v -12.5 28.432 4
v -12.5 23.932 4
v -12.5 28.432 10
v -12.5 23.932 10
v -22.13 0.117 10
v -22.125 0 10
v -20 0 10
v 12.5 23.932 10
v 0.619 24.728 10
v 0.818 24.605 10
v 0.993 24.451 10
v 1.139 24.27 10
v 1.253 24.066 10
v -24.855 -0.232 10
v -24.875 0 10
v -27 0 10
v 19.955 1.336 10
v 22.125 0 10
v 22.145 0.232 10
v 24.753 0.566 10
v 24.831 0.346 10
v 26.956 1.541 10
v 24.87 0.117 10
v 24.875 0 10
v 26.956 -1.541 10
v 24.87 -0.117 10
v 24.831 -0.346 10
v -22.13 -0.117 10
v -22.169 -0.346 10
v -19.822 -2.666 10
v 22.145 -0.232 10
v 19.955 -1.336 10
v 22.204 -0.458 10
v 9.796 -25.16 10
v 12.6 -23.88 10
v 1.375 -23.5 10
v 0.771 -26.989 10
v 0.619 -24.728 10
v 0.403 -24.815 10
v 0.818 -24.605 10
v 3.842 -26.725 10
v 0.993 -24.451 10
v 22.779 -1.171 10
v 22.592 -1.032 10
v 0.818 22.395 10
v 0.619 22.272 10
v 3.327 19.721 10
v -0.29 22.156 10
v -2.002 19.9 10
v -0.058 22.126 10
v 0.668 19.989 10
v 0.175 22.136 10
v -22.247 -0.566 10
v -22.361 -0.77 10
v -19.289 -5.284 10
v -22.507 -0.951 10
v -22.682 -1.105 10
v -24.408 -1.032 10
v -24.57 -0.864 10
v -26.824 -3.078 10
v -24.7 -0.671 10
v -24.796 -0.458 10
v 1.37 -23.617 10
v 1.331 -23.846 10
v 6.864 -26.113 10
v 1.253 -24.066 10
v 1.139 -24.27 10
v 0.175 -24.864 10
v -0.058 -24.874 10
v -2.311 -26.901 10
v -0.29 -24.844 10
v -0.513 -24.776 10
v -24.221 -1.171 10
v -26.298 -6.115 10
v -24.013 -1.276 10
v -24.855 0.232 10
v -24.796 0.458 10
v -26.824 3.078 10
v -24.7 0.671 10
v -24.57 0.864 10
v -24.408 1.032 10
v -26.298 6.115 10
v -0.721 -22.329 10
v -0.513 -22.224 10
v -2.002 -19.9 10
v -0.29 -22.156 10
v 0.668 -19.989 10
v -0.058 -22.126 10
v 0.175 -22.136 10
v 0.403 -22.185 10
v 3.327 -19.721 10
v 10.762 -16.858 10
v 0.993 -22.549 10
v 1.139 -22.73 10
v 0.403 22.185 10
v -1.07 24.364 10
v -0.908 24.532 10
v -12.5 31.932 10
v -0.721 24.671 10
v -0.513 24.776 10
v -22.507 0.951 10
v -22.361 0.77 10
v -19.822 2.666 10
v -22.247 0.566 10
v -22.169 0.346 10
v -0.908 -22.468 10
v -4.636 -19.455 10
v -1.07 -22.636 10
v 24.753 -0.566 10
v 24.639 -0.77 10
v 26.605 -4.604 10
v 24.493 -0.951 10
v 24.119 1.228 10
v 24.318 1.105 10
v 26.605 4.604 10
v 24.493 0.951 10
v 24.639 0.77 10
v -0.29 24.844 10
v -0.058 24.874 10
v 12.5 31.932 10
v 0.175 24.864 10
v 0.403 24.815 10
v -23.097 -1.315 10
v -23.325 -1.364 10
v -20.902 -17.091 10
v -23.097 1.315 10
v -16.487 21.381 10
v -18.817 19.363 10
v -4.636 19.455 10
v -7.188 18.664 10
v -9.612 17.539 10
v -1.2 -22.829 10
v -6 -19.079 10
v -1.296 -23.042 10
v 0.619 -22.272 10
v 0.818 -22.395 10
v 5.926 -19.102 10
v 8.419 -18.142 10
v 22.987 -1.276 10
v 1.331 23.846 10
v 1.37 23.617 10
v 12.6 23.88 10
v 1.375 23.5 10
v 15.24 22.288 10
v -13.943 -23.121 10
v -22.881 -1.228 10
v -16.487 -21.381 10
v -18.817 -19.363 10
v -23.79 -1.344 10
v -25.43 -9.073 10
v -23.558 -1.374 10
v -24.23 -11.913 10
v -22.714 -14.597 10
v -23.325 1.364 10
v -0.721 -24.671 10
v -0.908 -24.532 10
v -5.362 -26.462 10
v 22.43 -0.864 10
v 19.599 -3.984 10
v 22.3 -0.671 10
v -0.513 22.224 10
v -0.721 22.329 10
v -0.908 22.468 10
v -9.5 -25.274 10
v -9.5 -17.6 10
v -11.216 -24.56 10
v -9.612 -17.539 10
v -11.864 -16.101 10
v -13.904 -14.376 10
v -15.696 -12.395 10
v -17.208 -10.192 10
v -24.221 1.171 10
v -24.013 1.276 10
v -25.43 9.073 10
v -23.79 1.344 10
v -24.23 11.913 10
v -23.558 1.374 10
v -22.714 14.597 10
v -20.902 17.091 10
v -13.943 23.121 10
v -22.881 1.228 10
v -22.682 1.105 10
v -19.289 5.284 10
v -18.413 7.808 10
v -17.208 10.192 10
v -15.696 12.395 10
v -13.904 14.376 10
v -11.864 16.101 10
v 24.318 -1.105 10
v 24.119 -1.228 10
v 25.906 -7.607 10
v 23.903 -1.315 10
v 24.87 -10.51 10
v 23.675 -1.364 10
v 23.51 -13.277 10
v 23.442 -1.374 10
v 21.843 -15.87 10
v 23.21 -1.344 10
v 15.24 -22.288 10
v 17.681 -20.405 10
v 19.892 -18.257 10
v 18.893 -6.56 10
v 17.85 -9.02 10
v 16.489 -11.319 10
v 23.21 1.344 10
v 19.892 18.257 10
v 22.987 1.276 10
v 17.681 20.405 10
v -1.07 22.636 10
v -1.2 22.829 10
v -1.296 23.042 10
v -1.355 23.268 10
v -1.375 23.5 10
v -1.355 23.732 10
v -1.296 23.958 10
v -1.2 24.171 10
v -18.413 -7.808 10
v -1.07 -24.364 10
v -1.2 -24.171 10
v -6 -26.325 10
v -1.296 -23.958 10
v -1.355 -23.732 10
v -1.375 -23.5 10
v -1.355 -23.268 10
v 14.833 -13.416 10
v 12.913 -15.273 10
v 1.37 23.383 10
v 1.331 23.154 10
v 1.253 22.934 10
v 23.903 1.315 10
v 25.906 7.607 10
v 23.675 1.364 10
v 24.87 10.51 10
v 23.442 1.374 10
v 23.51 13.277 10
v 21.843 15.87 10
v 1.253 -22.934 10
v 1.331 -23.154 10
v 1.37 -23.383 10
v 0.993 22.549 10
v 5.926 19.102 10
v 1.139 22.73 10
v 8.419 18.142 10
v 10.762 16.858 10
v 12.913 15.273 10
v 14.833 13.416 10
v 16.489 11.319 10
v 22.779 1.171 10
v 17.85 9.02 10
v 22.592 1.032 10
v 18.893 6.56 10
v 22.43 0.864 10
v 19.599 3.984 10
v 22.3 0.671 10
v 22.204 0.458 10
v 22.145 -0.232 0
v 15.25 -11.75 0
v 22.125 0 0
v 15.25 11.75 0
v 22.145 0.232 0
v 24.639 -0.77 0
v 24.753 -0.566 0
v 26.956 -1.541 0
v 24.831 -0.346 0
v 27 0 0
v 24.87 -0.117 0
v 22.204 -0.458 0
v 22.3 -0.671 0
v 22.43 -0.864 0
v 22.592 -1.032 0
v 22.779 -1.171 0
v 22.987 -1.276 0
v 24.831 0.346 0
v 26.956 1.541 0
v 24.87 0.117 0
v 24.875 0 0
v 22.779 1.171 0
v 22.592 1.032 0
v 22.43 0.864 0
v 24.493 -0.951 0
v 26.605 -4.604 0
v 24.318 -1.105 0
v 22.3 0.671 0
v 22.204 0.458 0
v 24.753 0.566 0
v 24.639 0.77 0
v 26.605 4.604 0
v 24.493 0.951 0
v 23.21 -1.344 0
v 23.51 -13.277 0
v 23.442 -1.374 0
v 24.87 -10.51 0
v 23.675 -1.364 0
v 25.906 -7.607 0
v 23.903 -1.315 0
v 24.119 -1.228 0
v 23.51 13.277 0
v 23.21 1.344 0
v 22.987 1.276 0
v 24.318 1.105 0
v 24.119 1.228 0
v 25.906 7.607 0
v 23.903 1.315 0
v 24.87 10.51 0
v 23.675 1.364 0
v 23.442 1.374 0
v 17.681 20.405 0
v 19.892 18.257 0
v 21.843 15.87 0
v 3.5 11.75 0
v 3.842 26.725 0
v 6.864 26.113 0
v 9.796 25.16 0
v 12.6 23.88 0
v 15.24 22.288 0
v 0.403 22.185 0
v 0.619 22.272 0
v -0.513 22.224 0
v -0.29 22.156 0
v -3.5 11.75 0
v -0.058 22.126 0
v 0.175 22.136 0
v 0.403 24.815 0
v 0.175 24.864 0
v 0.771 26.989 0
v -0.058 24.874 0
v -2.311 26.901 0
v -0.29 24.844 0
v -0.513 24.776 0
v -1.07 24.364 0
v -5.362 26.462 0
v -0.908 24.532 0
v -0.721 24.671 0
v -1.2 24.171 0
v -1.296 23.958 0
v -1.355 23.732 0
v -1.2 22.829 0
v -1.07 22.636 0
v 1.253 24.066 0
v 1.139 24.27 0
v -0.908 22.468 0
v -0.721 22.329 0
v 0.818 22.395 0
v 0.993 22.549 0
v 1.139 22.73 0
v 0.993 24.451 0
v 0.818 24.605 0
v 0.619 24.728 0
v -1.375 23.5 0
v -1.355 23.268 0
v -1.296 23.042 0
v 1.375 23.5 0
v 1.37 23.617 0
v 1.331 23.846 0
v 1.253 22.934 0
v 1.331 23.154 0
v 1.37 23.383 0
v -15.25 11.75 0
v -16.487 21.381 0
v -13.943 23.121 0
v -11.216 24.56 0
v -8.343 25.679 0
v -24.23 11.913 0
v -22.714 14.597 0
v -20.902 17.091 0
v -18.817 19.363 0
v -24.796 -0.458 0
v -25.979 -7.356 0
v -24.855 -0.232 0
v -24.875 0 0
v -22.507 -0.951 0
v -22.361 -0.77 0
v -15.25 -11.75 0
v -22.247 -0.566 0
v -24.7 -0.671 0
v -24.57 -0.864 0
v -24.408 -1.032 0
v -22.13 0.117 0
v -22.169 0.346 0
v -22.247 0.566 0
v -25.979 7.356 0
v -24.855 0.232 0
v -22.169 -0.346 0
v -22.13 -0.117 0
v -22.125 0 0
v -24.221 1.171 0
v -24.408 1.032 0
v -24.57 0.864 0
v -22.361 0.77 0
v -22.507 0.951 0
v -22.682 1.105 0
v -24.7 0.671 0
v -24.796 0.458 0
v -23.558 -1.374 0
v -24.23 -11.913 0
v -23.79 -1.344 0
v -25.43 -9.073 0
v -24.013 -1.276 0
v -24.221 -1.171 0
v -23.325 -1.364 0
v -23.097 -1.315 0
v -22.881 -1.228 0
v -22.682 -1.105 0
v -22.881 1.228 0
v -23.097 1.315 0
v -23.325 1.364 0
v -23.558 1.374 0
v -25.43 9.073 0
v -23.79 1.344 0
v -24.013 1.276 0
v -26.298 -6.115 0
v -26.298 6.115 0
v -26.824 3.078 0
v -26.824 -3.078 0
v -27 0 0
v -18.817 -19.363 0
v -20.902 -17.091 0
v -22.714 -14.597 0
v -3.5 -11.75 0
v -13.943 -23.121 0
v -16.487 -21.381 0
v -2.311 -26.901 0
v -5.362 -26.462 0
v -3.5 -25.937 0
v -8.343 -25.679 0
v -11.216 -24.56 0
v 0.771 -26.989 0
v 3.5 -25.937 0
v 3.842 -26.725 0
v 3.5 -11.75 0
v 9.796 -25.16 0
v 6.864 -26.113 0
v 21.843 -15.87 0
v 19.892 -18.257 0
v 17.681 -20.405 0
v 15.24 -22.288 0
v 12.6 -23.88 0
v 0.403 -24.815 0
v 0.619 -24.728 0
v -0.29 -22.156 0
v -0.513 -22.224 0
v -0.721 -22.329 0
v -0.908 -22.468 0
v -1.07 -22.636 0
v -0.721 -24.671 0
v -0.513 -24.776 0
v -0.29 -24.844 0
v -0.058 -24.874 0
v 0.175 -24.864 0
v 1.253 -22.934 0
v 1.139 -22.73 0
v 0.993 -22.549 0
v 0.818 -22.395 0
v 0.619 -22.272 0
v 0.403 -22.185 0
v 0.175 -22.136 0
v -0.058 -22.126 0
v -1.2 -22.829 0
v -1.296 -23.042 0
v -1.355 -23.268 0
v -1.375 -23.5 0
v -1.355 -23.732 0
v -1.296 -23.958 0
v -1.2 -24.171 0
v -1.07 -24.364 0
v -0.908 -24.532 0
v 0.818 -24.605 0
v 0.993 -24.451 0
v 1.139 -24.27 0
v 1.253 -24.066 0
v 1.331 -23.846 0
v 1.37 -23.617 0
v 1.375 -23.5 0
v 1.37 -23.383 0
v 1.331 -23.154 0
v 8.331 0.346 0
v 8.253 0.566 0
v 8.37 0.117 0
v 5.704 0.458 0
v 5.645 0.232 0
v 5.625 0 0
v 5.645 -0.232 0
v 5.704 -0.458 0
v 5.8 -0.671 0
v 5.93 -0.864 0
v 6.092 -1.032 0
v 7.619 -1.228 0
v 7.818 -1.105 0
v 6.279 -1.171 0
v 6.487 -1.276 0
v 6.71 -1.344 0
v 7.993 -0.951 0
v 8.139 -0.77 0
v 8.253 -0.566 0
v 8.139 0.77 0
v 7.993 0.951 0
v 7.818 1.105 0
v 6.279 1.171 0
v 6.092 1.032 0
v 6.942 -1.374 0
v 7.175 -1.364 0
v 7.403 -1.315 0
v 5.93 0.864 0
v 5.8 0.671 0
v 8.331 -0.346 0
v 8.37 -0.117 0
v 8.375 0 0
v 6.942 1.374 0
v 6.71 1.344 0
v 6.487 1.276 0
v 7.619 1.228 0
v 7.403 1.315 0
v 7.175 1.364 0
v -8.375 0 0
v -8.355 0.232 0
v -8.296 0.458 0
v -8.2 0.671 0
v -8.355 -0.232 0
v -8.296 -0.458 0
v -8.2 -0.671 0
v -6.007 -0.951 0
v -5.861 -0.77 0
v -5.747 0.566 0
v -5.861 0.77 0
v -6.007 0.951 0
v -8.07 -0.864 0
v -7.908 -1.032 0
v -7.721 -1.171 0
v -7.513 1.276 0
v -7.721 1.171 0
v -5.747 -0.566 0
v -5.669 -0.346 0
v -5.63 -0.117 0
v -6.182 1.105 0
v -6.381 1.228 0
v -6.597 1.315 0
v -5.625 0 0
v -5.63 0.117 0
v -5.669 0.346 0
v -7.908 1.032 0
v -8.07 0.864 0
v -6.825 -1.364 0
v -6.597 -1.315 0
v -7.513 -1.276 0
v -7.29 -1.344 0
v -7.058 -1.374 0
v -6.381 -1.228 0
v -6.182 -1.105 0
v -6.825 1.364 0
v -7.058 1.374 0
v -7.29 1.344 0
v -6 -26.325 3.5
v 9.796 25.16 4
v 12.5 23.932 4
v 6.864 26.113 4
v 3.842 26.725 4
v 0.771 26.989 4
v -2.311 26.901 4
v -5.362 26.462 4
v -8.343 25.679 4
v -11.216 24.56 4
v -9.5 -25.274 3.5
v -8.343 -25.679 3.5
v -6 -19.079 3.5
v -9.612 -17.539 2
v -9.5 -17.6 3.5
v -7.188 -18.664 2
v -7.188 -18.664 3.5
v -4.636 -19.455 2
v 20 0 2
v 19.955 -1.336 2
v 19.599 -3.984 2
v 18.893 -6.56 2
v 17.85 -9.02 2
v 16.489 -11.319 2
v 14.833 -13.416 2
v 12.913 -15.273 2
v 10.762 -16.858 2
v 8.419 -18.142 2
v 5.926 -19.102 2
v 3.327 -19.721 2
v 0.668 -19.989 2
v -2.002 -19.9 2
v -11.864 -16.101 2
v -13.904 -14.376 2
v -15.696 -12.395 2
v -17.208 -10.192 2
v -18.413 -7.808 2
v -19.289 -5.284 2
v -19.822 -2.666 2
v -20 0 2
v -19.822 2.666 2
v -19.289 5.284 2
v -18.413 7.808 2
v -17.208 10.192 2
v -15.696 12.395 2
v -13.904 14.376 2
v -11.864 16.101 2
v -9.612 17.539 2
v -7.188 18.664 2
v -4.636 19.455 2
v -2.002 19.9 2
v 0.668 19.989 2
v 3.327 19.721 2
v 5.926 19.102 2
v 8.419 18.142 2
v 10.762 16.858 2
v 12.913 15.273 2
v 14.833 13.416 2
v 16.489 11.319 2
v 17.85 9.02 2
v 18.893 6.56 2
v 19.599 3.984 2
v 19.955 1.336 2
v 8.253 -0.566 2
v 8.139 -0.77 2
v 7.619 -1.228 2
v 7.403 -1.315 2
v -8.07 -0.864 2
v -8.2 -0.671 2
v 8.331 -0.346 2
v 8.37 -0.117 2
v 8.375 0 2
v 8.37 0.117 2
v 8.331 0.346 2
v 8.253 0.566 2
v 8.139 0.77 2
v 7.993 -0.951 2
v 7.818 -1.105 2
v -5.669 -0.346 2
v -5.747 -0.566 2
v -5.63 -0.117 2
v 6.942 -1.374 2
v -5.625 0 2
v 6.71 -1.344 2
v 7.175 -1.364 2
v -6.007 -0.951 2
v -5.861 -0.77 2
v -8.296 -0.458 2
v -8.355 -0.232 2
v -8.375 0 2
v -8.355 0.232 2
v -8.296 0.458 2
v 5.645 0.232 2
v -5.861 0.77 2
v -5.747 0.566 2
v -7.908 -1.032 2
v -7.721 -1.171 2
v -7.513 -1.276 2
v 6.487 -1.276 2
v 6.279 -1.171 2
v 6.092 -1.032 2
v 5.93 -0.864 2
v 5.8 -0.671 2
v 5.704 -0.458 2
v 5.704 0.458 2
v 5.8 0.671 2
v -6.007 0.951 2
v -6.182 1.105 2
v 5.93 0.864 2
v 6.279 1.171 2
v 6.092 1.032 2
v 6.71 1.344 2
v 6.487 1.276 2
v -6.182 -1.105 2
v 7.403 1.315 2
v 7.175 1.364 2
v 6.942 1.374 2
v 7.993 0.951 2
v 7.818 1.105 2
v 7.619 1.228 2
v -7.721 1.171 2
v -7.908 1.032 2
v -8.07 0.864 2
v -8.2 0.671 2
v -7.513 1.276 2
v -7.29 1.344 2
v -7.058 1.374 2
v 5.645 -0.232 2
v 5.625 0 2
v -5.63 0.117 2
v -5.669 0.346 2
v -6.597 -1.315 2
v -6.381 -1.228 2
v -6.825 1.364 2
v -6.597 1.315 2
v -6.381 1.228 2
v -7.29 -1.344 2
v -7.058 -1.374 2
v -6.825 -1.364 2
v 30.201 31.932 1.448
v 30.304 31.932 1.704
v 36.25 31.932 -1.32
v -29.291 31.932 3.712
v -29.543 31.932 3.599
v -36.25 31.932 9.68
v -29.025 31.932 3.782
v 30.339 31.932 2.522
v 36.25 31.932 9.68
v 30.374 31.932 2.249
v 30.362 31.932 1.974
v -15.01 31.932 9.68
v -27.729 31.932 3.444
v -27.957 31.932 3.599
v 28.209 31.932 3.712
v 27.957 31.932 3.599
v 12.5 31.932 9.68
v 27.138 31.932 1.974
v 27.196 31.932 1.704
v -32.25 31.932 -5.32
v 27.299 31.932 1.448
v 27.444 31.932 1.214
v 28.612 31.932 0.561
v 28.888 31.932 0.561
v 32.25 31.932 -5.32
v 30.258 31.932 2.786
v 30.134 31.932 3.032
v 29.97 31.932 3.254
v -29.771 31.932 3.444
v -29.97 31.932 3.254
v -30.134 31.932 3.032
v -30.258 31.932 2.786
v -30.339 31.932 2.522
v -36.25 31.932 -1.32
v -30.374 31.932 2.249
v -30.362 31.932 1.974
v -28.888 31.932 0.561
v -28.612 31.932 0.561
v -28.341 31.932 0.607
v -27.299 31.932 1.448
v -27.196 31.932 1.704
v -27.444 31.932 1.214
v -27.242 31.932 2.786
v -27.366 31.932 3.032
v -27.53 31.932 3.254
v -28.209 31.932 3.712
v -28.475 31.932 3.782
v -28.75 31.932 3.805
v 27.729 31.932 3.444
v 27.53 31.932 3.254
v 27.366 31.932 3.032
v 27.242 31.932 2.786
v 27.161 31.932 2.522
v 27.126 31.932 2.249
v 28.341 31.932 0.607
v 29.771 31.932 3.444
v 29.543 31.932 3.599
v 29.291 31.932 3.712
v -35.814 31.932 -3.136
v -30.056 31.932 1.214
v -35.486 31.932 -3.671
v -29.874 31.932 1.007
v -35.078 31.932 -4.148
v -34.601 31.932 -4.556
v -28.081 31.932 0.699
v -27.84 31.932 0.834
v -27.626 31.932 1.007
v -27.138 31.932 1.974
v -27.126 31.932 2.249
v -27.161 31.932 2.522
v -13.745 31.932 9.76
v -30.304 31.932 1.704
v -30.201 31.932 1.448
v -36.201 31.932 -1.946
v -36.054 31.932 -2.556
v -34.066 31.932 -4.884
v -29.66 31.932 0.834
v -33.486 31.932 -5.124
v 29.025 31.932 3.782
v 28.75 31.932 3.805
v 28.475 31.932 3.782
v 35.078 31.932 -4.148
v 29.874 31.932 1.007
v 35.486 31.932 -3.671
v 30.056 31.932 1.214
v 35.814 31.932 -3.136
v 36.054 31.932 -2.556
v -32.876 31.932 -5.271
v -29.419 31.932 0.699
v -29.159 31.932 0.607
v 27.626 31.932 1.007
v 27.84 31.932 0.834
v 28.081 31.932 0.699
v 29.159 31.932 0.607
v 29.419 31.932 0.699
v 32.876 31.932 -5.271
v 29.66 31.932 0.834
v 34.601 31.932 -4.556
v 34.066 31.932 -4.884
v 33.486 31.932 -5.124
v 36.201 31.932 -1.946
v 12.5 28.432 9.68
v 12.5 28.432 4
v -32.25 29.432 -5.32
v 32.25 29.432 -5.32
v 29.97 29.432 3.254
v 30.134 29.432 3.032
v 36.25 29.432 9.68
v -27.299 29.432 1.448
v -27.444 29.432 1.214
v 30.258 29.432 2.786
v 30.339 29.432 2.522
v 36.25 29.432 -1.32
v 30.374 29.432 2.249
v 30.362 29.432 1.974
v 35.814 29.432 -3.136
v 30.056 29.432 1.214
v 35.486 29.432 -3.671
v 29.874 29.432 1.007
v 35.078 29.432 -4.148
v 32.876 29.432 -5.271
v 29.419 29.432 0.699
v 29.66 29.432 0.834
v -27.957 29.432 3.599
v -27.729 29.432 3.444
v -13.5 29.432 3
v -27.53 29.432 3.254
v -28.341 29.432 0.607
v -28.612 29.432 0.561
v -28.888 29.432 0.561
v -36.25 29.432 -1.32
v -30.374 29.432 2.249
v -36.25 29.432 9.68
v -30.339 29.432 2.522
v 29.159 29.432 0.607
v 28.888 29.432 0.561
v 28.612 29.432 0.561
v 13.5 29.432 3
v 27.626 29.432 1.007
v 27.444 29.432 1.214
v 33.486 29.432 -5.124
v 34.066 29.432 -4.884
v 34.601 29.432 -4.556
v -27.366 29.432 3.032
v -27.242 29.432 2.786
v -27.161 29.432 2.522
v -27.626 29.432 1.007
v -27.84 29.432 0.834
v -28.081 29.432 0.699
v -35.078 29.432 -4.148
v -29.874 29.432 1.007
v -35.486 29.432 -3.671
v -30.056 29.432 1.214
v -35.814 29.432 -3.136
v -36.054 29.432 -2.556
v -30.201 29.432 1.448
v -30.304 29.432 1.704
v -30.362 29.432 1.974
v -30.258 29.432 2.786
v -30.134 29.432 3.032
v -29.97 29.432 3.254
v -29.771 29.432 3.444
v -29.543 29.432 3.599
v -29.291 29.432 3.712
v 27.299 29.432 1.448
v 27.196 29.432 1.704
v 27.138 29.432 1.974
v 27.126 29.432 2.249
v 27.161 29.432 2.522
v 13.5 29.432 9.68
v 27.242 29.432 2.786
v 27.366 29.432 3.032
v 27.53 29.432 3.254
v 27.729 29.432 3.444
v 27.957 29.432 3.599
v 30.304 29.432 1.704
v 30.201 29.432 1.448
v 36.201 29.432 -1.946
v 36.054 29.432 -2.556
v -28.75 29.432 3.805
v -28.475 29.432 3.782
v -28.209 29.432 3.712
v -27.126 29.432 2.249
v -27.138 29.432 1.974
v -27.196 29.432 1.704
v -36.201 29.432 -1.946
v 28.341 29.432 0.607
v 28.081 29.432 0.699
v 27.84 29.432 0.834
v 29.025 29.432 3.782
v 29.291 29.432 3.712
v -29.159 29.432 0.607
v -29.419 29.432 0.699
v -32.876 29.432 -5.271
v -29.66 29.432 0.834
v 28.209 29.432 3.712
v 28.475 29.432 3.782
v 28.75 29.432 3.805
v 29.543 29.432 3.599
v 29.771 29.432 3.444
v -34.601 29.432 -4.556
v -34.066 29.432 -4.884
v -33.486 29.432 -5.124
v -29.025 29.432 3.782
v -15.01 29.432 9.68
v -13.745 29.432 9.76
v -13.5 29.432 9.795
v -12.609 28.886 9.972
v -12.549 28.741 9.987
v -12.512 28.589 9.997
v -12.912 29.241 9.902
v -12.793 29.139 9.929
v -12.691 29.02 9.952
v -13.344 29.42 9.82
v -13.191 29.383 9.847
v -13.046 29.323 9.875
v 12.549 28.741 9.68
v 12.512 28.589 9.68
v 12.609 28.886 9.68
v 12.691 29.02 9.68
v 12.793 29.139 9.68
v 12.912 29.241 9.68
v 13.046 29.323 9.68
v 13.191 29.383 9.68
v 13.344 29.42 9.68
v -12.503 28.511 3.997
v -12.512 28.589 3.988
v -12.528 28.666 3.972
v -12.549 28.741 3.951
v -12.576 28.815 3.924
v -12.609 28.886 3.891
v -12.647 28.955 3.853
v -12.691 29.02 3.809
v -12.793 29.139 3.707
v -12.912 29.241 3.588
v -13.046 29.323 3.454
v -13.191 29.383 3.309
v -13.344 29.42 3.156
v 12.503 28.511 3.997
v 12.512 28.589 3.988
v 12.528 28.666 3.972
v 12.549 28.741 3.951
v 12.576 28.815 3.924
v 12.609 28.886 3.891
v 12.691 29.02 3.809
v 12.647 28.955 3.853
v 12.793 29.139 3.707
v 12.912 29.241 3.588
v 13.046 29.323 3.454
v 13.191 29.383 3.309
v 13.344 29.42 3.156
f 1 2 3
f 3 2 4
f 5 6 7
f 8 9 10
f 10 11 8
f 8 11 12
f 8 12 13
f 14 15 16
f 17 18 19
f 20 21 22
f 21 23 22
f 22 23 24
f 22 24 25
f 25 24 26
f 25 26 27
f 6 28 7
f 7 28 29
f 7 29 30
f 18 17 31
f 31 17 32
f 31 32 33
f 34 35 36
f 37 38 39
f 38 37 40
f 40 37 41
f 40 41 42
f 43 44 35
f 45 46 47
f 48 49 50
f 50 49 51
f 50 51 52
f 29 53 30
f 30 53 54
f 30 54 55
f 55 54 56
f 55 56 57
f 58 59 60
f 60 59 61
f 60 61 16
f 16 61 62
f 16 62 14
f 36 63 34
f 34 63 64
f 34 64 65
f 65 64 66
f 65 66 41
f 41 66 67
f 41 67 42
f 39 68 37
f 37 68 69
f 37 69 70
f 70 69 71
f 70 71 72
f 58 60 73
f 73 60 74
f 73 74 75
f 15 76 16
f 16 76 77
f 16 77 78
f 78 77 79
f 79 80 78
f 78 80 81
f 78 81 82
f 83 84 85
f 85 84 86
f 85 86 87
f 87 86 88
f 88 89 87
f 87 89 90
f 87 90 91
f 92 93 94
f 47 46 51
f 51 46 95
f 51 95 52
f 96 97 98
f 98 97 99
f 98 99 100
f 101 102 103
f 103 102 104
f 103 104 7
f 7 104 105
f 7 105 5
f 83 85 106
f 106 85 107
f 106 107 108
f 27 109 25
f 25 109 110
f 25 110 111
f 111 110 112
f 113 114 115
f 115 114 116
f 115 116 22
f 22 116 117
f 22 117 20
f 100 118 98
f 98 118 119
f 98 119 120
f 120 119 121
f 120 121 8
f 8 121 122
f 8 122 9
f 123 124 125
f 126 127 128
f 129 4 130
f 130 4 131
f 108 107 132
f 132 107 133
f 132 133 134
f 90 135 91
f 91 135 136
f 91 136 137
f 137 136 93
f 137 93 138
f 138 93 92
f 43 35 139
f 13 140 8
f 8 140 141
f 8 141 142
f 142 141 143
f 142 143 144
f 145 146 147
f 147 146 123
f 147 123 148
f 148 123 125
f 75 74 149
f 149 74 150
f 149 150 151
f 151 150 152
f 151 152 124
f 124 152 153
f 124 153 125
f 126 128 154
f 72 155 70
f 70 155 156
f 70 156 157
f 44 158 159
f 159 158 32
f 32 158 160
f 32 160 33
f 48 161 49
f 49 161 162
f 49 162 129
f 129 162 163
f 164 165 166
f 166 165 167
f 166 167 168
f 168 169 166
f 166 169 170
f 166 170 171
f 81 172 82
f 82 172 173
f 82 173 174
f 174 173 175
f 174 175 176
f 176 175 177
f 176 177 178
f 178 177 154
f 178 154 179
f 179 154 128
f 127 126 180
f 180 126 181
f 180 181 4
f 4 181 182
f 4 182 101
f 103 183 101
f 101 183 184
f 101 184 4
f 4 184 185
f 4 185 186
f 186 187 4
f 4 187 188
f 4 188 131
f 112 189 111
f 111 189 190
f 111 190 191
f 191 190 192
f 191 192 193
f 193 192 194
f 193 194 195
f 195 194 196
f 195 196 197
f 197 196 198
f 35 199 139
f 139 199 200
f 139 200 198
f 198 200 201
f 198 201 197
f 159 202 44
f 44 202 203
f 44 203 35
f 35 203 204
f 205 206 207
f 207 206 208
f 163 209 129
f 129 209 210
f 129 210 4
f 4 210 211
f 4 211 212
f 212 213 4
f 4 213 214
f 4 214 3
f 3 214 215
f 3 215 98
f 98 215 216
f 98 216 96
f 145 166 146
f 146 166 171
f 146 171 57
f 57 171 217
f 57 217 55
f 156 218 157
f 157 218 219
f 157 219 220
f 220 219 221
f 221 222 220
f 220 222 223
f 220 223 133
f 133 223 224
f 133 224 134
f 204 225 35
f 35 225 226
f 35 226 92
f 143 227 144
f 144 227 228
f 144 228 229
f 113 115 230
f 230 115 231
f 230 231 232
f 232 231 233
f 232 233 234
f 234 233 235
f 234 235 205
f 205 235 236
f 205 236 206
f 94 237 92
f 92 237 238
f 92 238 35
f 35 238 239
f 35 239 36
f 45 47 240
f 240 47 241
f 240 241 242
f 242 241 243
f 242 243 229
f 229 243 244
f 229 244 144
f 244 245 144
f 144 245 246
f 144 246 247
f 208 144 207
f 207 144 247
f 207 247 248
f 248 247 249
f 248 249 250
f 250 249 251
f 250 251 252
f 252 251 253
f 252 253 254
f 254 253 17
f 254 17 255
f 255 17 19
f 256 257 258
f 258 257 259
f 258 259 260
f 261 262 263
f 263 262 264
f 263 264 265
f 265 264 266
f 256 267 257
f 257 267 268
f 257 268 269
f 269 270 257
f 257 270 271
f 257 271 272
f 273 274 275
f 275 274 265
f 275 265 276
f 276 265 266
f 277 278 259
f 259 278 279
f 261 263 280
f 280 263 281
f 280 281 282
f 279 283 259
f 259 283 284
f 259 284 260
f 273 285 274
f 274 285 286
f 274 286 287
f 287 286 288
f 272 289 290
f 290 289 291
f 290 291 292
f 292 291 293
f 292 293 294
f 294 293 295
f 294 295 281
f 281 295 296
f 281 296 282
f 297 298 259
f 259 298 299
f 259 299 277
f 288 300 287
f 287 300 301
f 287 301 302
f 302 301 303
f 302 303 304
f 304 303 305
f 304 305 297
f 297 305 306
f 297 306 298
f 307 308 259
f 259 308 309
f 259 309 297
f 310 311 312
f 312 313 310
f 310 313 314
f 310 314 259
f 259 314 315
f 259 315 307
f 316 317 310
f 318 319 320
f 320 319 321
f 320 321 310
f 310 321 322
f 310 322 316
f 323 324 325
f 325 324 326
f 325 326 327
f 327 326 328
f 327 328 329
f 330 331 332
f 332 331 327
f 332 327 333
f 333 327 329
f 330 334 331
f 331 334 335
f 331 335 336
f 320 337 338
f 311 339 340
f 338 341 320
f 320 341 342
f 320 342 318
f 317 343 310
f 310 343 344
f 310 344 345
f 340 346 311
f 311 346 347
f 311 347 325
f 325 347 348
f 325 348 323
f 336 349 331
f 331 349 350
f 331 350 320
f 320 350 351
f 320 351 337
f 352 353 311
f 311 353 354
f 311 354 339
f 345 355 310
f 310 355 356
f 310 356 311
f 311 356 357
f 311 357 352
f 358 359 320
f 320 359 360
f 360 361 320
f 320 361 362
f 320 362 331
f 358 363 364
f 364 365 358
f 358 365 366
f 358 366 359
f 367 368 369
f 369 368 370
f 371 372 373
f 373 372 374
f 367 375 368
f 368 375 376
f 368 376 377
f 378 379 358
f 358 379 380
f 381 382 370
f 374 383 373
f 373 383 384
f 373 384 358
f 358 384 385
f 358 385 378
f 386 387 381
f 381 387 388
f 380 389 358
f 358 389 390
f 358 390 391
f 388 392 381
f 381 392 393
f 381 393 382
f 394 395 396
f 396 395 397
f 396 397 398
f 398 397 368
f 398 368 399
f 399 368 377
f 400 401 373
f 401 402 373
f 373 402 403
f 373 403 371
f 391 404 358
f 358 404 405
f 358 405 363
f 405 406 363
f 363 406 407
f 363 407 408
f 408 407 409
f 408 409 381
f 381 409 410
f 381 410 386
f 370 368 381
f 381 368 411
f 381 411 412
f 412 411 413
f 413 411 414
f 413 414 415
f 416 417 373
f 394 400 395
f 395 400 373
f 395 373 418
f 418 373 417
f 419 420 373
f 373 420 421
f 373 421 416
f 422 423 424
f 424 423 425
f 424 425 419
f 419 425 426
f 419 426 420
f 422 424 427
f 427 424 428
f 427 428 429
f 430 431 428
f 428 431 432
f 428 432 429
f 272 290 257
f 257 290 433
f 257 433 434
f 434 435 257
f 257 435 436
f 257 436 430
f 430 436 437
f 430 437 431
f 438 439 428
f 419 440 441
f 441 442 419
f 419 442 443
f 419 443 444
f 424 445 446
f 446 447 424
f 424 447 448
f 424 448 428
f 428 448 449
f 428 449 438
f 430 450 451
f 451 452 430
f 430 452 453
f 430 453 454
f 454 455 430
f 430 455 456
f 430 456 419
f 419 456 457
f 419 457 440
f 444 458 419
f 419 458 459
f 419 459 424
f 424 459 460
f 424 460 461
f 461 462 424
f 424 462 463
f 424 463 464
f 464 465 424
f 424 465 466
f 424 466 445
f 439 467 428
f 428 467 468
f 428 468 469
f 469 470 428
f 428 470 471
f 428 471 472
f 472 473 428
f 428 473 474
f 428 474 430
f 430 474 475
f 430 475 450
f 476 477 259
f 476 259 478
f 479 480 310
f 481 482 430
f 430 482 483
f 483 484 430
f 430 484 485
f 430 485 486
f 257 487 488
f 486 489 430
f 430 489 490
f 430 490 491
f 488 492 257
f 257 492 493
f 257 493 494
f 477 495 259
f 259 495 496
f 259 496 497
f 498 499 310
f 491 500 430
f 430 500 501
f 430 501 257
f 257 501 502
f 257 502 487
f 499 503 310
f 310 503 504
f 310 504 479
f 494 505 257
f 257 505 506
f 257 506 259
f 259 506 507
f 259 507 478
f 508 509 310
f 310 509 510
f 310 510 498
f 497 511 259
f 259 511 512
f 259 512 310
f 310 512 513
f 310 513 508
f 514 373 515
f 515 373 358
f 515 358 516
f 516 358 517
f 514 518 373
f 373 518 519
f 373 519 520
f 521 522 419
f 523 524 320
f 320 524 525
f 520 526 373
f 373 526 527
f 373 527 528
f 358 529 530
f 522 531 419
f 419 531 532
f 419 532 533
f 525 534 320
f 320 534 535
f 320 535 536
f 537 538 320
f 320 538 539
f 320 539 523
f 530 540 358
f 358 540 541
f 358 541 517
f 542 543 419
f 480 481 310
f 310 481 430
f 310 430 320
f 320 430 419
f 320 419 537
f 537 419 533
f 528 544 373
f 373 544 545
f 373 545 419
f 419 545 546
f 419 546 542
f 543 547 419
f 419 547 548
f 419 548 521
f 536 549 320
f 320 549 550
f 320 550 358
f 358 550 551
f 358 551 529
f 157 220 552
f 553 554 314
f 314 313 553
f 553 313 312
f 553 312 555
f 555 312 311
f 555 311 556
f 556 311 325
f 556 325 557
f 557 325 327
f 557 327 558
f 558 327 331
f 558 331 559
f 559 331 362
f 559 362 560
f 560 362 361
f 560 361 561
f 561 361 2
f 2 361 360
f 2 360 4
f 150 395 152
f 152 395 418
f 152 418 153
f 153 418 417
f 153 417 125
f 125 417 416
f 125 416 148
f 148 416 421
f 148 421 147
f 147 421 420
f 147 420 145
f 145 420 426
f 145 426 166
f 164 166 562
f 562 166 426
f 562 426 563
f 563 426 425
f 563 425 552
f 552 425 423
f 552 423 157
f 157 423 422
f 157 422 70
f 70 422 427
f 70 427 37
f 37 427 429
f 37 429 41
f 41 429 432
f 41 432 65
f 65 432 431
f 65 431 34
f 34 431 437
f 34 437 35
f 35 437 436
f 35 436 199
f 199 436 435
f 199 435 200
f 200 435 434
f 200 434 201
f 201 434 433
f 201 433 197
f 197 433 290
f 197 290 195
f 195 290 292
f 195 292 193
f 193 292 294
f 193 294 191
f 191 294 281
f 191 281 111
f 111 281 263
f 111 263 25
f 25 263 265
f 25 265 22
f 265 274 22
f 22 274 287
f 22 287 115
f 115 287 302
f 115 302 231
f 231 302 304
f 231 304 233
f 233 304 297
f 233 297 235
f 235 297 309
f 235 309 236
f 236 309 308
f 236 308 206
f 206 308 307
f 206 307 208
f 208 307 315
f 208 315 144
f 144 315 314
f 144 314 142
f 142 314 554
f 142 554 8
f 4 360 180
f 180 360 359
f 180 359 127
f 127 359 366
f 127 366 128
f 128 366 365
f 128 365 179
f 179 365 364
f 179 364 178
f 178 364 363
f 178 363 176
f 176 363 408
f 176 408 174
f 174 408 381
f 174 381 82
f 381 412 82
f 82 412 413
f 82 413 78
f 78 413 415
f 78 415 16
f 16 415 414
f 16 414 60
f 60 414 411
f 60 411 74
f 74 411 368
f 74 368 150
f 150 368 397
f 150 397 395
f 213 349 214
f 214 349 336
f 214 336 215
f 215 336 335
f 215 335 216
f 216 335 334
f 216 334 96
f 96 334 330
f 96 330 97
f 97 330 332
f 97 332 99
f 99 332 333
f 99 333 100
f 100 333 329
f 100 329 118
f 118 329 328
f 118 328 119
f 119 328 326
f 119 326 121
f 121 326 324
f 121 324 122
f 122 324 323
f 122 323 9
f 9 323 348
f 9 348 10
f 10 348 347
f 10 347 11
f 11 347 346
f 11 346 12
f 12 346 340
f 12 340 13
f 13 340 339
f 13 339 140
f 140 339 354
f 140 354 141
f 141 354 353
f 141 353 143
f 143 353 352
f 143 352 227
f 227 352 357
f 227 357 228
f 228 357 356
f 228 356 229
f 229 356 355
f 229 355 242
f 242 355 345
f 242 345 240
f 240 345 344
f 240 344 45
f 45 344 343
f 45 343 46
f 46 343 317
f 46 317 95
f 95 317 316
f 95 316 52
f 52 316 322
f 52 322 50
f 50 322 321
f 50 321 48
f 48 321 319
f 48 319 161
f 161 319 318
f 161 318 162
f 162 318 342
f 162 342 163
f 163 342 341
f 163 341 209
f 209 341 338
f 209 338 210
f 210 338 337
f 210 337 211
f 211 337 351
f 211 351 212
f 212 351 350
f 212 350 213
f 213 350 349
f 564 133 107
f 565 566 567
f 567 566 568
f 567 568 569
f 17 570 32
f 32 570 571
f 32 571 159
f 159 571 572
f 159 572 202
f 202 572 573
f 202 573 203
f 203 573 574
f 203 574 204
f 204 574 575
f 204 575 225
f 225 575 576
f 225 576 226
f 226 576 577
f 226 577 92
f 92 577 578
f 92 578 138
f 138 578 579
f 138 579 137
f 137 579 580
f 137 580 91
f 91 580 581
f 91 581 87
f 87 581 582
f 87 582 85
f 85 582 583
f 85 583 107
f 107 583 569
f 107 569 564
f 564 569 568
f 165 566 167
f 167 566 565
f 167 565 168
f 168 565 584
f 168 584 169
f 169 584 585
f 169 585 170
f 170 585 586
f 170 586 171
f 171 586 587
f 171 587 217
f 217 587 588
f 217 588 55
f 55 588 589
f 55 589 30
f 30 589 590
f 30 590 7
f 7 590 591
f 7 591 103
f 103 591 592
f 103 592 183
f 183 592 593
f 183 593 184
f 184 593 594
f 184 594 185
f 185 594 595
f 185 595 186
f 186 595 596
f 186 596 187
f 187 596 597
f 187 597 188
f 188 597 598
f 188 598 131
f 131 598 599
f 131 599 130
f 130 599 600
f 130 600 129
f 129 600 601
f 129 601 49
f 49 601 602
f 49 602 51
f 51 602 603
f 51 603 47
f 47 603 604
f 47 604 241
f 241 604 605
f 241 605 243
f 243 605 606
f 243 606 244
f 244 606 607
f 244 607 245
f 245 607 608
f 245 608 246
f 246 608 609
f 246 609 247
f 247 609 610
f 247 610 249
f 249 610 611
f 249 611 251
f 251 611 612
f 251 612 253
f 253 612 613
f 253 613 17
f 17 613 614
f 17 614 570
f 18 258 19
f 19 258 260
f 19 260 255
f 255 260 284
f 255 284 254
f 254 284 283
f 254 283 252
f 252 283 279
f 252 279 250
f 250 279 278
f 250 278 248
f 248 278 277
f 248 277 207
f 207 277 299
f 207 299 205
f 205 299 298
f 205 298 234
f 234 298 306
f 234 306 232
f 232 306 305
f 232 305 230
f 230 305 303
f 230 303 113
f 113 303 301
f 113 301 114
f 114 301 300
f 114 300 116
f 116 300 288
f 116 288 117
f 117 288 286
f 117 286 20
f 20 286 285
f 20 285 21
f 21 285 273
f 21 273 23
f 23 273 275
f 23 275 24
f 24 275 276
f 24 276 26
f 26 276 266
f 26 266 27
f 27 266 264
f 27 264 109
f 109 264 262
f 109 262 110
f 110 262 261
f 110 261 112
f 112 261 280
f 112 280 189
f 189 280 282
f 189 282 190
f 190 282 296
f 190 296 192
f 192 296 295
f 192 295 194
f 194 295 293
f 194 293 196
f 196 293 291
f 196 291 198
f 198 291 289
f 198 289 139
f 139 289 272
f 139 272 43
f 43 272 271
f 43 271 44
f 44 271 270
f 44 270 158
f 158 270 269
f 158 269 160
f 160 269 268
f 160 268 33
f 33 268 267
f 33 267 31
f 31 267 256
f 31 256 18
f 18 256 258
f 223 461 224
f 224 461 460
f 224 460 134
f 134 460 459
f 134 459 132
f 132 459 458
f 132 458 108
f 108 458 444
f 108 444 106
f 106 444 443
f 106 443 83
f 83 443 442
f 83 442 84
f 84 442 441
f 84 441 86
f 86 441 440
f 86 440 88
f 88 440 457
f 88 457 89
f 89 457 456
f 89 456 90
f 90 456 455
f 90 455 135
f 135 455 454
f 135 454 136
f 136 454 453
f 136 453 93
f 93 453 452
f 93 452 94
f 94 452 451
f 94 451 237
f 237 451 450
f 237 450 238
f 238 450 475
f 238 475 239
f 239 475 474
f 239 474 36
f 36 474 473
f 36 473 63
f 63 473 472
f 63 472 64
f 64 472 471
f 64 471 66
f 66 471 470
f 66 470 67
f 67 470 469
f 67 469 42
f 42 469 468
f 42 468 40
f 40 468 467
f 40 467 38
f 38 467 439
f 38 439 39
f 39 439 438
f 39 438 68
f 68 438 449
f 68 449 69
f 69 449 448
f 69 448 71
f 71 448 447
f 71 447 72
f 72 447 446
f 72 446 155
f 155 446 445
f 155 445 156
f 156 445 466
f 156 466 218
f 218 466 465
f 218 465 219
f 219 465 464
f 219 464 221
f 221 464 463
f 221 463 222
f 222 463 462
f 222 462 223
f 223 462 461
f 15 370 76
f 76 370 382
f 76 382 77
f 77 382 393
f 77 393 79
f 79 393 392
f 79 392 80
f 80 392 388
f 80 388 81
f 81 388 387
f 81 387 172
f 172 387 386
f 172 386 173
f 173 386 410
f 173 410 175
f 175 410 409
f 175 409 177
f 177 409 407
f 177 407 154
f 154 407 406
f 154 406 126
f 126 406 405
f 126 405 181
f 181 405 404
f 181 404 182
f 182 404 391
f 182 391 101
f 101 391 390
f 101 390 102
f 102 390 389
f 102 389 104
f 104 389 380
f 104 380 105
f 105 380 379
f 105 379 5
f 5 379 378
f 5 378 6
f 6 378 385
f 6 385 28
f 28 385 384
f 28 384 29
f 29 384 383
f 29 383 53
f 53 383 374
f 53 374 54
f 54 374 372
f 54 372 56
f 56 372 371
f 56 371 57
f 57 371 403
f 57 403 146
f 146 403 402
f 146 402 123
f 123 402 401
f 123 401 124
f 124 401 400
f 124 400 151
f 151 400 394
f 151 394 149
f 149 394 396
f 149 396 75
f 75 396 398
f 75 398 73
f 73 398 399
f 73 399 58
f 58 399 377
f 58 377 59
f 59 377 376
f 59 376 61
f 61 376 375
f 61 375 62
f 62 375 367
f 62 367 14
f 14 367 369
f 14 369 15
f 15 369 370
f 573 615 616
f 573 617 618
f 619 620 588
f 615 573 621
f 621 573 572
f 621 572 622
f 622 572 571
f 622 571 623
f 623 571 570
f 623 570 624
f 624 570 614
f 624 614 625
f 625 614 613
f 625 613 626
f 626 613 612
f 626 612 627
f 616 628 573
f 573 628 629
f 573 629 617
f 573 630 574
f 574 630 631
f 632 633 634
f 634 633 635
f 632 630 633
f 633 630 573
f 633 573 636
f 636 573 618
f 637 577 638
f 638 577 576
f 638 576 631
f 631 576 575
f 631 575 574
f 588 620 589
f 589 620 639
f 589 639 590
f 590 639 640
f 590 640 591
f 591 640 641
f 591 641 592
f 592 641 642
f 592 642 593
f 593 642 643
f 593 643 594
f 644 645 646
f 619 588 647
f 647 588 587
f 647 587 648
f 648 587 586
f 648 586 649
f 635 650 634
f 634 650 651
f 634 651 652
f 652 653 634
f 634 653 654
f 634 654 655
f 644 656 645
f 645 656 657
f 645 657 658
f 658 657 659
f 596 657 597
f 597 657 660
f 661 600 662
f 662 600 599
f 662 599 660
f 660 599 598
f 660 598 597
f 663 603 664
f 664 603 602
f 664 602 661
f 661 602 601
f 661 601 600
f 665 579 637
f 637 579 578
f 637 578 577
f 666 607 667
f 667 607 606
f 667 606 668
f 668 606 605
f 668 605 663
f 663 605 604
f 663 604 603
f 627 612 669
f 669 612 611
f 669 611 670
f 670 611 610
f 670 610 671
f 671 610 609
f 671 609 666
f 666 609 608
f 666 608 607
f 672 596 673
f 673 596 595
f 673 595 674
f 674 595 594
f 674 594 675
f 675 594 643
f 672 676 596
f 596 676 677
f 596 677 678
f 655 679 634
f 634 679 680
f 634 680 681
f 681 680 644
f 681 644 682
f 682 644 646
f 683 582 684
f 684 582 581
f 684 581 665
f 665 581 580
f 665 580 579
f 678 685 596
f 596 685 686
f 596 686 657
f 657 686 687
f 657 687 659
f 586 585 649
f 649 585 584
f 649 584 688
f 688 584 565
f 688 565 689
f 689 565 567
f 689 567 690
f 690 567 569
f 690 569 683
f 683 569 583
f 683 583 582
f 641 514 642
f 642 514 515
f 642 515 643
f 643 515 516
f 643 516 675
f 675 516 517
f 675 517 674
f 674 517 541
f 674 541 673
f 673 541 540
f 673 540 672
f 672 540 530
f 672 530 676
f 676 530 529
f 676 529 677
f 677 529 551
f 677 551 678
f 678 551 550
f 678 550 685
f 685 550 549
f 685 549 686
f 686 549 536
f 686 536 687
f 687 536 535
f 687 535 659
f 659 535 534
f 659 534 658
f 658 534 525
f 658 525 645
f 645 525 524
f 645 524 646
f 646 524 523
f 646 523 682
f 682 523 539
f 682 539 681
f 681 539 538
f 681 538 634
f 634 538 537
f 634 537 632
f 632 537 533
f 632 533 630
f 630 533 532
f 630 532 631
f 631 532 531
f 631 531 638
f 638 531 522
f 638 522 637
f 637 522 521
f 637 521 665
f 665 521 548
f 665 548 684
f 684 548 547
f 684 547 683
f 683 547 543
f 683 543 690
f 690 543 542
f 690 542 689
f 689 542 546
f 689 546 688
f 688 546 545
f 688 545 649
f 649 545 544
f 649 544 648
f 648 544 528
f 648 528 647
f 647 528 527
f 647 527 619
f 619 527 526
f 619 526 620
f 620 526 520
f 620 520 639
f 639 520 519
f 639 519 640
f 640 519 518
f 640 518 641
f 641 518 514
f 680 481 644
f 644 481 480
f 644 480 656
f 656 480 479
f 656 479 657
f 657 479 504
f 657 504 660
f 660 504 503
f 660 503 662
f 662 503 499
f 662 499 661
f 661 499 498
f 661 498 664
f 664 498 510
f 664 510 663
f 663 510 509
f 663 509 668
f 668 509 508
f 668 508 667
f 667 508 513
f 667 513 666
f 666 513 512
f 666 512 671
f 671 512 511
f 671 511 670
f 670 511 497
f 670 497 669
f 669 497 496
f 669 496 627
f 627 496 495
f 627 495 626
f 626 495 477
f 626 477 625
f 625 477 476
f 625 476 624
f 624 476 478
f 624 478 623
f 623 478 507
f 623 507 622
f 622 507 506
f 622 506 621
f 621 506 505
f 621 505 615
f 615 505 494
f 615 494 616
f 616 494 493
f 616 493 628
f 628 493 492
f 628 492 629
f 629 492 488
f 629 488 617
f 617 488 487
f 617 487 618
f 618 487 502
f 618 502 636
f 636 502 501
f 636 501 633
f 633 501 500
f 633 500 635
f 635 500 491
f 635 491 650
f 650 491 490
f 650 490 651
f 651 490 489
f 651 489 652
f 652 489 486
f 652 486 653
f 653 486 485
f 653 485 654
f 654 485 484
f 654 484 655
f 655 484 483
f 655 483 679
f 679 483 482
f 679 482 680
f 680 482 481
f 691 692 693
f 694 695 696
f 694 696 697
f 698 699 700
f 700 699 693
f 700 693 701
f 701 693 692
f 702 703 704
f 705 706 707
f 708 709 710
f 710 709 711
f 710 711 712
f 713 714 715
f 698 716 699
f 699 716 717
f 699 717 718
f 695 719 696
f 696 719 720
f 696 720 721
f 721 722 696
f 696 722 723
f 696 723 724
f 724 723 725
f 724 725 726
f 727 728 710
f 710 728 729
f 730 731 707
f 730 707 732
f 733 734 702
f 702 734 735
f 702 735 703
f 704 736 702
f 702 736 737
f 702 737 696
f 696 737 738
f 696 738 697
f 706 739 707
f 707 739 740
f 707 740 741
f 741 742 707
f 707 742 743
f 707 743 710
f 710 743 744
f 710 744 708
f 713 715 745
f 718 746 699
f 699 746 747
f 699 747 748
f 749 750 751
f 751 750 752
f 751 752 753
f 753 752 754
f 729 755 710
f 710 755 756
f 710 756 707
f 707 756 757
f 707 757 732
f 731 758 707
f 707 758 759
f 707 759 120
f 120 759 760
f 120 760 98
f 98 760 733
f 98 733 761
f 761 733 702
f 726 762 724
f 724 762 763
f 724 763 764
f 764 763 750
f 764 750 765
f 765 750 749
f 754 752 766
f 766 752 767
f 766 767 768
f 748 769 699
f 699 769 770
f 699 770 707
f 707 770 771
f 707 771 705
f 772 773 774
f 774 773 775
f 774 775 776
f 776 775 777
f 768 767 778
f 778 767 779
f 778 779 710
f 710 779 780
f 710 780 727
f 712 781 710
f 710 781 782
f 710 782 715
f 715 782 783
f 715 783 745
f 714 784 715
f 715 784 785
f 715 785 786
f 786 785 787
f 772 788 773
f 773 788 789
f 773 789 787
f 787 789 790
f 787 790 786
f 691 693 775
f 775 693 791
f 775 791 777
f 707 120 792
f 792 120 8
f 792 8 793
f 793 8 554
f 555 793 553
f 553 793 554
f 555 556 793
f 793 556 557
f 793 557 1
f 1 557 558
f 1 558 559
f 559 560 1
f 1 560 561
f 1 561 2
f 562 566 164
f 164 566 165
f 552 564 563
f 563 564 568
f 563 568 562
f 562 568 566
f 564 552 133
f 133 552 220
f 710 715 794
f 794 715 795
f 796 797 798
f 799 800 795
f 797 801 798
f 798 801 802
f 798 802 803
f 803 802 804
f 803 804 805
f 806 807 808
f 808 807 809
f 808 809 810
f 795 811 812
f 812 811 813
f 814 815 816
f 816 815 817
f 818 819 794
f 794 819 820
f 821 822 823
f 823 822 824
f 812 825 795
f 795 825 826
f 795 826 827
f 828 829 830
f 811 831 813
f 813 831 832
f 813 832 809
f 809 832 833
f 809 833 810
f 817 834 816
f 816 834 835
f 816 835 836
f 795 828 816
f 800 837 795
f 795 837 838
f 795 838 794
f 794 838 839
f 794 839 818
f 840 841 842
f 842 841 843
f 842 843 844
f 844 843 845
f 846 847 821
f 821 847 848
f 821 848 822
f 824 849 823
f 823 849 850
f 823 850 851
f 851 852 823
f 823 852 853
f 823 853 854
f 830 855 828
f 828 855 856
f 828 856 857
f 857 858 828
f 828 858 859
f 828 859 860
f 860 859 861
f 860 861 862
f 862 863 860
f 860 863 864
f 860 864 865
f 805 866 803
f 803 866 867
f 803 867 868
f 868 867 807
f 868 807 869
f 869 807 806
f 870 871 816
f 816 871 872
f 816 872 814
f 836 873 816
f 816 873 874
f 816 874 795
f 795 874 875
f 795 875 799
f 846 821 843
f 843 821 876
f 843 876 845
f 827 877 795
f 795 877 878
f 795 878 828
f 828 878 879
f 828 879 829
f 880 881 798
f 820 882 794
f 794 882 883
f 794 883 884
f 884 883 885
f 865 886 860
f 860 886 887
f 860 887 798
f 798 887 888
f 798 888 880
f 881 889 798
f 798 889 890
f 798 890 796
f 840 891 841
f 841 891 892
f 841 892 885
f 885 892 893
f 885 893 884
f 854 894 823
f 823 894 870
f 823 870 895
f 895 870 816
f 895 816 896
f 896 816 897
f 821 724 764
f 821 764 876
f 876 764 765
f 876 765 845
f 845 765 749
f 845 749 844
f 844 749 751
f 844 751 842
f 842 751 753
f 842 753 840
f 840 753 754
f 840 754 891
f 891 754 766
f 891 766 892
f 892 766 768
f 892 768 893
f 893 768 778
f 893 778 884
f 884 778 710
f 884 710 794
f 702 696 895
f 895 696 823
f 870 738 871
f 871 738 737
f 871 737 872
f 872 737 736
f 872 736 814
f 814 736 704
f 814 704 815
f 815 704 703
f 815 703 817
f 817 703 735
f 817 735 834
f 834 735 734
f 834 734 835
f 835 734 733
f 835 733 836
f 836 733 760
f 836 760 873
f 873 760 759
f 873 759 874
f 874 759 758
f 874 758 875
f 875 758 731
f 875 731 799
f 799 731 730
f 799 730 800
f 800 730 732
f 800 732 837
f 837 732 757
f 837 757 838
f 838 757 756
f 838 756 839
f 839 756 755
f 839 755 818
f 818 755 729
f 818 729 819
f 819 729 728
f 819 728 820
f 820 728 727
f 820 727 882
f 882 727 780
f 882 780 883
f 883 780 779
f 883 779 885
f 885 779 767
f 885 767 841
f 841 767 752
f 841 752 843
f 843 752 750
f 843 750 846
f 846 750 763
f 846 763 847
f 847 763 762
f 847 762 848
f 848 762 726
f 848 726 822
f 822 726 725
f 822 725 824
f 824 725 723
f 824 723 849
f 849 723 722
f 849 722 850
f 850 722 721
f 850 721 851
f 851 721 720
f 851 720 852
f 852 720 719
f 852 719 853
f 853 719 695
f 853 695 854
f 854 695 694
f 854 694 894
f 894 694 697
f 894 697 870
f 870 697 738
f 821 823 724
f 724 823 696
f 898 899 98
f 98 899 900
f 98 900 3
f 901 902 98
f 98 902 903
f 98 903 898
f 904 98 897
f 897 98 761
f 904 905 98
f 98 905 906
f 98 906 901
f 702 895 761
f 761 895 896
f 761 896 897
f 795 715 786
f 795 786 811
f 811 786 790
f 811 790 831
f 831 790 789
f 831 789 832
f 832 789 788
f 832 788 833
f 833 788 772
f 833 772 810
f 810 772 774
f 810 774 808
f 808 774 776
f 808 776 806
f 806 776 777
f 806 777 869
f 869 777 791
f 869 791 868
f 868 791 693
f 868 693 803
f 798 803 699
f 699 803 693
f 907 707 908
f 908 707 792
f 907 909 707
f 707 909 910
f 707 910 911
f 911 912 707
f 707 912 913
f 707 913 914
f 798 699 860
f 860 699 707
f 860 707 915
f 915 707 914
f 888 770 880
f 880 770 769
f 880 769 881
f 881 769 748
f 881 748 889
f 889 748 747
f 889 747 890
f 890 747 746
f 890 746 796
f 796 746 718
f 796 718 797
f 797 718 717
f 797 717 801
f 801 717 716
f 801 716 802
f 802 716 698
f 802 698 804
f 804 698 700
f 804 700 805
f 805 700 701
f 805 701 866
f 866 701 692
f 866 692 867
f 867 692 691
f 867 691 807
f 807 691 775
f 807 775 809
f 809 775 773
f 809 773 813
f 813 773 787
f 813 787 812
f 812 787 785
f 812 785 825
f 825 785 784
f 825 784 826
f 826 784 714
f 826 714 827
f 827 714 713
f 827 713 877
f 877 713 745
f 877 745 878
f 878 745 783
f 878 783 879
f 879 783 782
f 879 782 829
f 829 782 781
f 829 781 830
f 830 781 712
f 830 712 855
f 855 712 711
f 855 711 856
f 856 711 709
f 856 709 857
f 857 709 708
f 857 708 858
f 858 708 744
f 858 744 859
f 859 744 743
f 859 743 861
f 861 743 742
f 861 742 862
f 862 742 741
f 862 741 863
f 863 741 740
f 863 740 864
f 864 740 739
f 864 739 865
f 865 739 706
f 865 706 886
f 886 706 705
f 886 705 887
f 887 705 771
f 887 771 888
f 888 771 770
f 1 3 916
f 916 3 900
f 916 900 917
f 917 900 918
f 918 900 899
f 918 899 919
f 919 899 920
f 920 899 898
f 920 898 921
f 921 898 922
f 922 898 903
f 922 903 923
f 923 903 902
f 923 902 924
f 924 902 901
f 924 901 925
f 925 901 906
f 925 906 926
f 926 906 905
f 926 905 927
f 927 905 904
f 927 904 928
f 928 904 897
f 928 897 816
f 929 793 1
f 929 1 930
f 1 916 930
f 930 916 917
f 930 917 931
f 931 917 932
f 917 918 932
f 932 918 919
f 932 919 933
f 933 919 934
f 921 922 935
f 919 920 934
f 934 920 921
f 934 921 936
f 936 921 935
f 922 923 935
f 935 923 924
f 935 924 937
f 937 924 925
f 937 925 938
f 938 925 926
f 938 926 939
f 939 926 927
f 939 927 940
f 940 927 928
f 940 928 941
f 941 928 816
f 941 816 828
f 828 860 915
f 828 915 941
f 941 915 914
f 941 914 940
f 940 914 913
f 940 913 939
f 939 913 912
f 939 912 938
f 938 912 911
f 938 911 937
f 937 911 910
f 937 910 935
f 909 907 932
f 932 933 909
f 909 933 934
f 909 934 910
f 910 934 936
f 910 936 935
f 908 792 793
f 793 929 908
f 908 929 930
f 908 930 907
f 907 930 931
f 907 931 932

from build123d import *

# Parameters (mm, degrees)
SKETCH1_R               = 27
SKETCH1_R_2             = 1.375
SKETCH1_R_3             = 20
BOSS_EXTRUDE1_DEPTH     = 10
SKETCH3_R               = 20
SKETCH3_R_2             = 1.375
BOSS_EXTRUDE2_DEPTH     = 2
BOSS_EXTRUDE3_DEPTH     = 6
CUT_EXTRUDE1_REACH      = 44.996
CUT_EXTRUDE1_END_RADIUS = 27
SKETCH4_W               = 3.5
SKETCH4_H               = 9.337272122
SKETCH6_W               = 25
SKETCH6_H               = 15.32
BOSS_EXTRUDE4_DEPTH     = 2.5
SKETCH7_R               = 1.625
BOSS_EXTRUDE5_DEPTH     = 2.5
FILLET2_R               = 10
FILLET3_R               = 1


with BuildPart() as part:
    # Sketch1 → Boss-Extrude1 (new body)
    with BuildSketch(Plane.XY):
        Circle(SKETCH1_R)
        with Locations((0, 23.5)):
            Circle(SKETCH1_R_2, mode=Mode.SUBTRACT)
        with Locations((23.5, 0)):
            Circle(SKETCH1_R_2, mode=Mode.SUBTRACT)
        with Locations((0, -23.5)):
            Circle(SKETCH1_R_2, mode=Mode.SUBTRACT)
        with Locations((-23.5, 0)):
            Circle(SKETCH1_R_2, mode=Mode.SUBTRACT)
        Circle(SKETCH1_R_3, mode=Mode.SUBTRACT)
    extrude(amount=BOSS_EXTRUDE1_DEPTH)

    # Sketch3 → Boss-Extrude2 (add)
    with BuildSketch(Plane.XY):
        Circle(SKETCH3_R)
        with Locations((-7, 0)):
            Circle(SKETCH3_R_2, mode=Mode.SUBTRACT)
        with Locations((7, 0)):
            Circle(SKETCH3_R_2, mode=Mode.SUBTRACT)
    extrude(amount=BOSS_EXTRUDE2_DEPTH)

    # Sketch5 → Boss-Extrude3 (add)
    with BuildSketch(Plane.XY.offset(10)):
        Polygon((-12.5, 23.932195888), (-4.251935746, 23.932195888), (0, 26.25446737), (4.267780323, 23.932195888), (12.5, 23.932195888), (12.5, 31.932195888), (-12.5, 31.932195888), align=None)
    extrude(amount=-BOSS_EXTRUDE3_DEPTH)

    # Cut-Extrude1: up to this cylinder (the profile starts inside it)
    cut_extrude1_end = Plane(origin=(0, 0, 8.168636), z_dir=(0, 0, -1)) * Cylinder(CUT_EXTRUDE1_END_RADIUS, 144.992, mode=Mode.PRIVATE)
    # Sketch4 → Cut-Extrude1 (cut, up to the surface)
    with BuildSketch(Plane(origin=(0, 0, 0), x_dir=(1, 0, 0), z_dir=(0, 1, 0)), mode=Mode.PRIVATE) as cut_extrude1_sk1:
        with Locations((-7.75, -8.168636061)):
            Rectangle(SKETCH4_W, SKETCH4_H)
    cut_extrude1_tool1 = extrude(cut_extrude1_sk1.sketch, amount=-CUT_EXTRUDE1_REACH, mode=Mode.PRIVATE) & cut_extrude1_end
    add(cut_extrude1_tool1.solids().sort_by_distance((-7.75, 0, 8.168636))[0], mode=Mode.SUBTRACT)

    # Sketch6 → Boss-Extrude4 (add)
    with BuildSketch(Plane(origin=(0, 31.932195888, 0), x_dir=(1, 0, 0), z_dir=(0, 1, 0))):
        with Locations((0, -2.34)):
            Rectangle(SKETCH6_W, SKETCH6_H)
    boss_extrude4 = extrude(amount=-BOSS_EXTRUDE4_DEPTH)

    # Sketch7 → Boss-Extrude5 (add)
    with BuildSketch(Plane(origin=(0, 31.932195888, 0), x_dir=(1, 0, 0), z_dir=(0, 1, 0))):
        with BuildLine():
            Line((-36.25, -9.68), (-28.75, -9.68))
            Line((-28.75, -9.68), (0, -9.68))
            Line((0, -9.68), (0, 5.32))
            Line((0, 5.32), (-32.25, 5.32))
            ThreePointArc((-32.25, 5.32), (-35.078427125, 4.148427125), (-36.25, 1.32))
            Line((-36.25, 1.32), (-36.25, -2.18))
            Line((-36.25, -2.18), (-36.25, -9.68))
        make_face()
        with Locations(Location((-28.75, -2.18, 0), (0, 0, 270))):
            Circle(SKETCH7_R, mode=Mode.SUBTRACT)
    boss_extrude5 = extrude(amount=-BOSS_EXTRUDE5_DEPTH)

    # Fillet2
    # the kernel refuses this fillet: 10 mm, written as the material it adds along each edge
    with BuildSketch(Plane(origin=(-12.5, 29.432195888, 9.68), x_dir=(-1, 0, 0), z_dir=(0, 1, 0))) as fillet2_piece_1:
        with BuildLine():
            CenterArc((2.509501943, 10), FILLET2_R, 255.466253099, 14.533746901)
            Line((0, 0.32), (-0.050190039, 0.1264))
            ThreePointArc((-0.050190039, 0.1264), (-0.2, 0.16), (-0.2, 0))
            Line((-0.2, 0), (0, -0.2))
            Line((0, -0.2), (2.509501943, -0.2))
            Line((2.509501943, -0.2), (2.509501943, 0))
        make_face()
    extrude(amount=2.5)

    # Mirror1: Boss-Extrude4, Boss-Extrude5 across plane
    add(boss_extrude4.mirror(Plane(origin=(0, 0, 0), x_dir=(0, 0, 1), z_dir=(1, 0, 0))))
    add(boss_extrude5.mirror(Plane(origin=(0, 0, 0), x_dir=(0, 0, 1), z_dir=(1, 0, 0))))

    # Fillet3
    # the kernel refuses this fillet: 1 mm, written as the material it adds along each edge
    with BuildSketch(Plane(origin=(-12.5, 29.432195888, 4), x_dir=(0, -1, 0), z_dir=(0, 0, 1))) as fillet3_piece_1_section:
        with BuildLine():
            CenterArc((FILLET3_R, -FILLET3_R), FILLET3_R, 90, 90)
            Line((0, -FILLET3_R), (0, 0))
            Line((0, 0), (FILLET3_R, 0))
        make_face()
    fillet3_piece_1 = extrude(amount=6, mode=Mode.PRIVATE)
    fillet3_piece_1 = fillet3_piece_1 - Plane(origin=(-15.009501943, 29.204760134, 19.68), x_dir=(-1, 0, 0), z_dir=(0, -1, 0)) * Cylinder(10, 16, mode=Mode.PRIVATE)
    add(fillet3_piece_1)
    with BuildSketch(Plane(origin=(12.5, 29.432195888, 9.68), x_dir=(0, -1, 0), z_dir=(0, 0, -1))) as fillet3_piece_2:
        with BuildLine():
            CenterArc((FILLET3_R, -FILLET3_R), FILLET3_R, 90, 90)
            Line((0, -FILLET3_R), (0, 0))
            Line((0, 0), (FILLET3_R, 0))
        make_face()
    extrude(amount=5.68)
    with BuildSketch(Plane(origin=(12.5, 29.432195888, 4), x_dir=(0, -1, 0), z_dir=(-1, 0, 0))) as fillet3_piece_3:
        with BuildLine():
            CenterArc((FILLET3_R, -FILLET3_R), FILLET3_R, 90, 90)
            Line((0, -FILLET3_R), (0, 0))
            Line((0, 0), (FILLET3_R, 0))
        make_face()
    extrude(amount=25)
    with BuildSketch(Plane(origin=(-12.5, 29.432195888, 1.5), x_dir=(0, -1, 0), z_dir=(0, 0, 1))) as fillet3_piece_4a_section:
        with BuildLine():
            CenterArc((FILLET3_R, -FILLET3_R), FILLET3_R, 90, 90)
            Line((0, -FILLET3_R), (0, 0))
            Line((0, 0), (FILLET3_R, 0))
        make_face()
    fillet3_piece_4a = extrude(amount=8.5, mode=Mode.PRIVATE)
    fillet3_piece_4a = split(fillet3_piece_4a, bisect_by=Plane(origin=(-12.726395114, 29.205800773, 4), z_dir=(0, 0, -1)), keep=Keep.TOP, mode=Mode.PRIVATE)
    with BuildSketch(Plane(origin=(12.5, 29.432195888, 4), x_dir=(0, -1, 0), z_dir=(-1, 0, 0))) as fillet3_piece_4b_section:
        with BuildLine():
            CenterArc((FILLET3_R, -FILLET3_R), FILLET3_R, 90, 90)
            Line((0, -FILLET3_R), (0, 0))
            Line((0, 0), (FILLET3_R, 0))
        make_face()
    fillet3_piece_4b = extrude(amount=27.5, mode=Mode.PRIVATE)
    fillet3_piece_4b = split(fillet3_piece_4b, bisect_by=Plane(origin=(-12.5, 29.205800773, 3.773604886), z_dir=(-1, 0, 0)), keep=Keep.TOP, mode=Mode.PRIVATE)
    fillet3_piece_4 = fillet3_piece_4a & fillet3_piece_4b
    add(fillet3_piece_4)
    with BuildSketch(Plane(origin=(12.5, 29.432195888, 9.68), x_dir=(0, -1, 0), z_dir=(0, 0, -1))) as fillet3_piece_5a_section:
        with BuildLine():
            CenterArc((FILLET3_R, -FILLET3_R), FILLET3_R, 90, 90)
            Line((0, -FILLET3_R), (0, 0))
            Line((0, 0), (FILLET3_R, 0))
        make_face()
    fillet3_piece_5a = extrude(amount=8.18, mode=Mode.PRIVATE)
    fillet3_piece_5a = split(fillet3_piece_5a, bisect_by=Plane(origin=(12.726395114, 29.205800773, 4), z_dir=(0, 0, -1)), keep=Keep.TOP, mode=Mode.PRIVATE)
    with BuildSketch(Plane(origin=(15, 29.432195888, 4), x_dir=(0, -1, 0), z_dir=(-1, 0, 0))) as fillet3_piece_5b_section:
        with BuildLine():
            CenterArc((FILLET3_R, -FILLET3_R), FILLET3_R, 90, 90)
            Line((0, -FILLET3_R), (0, 0))
            Line((0, 0), (FILLET3_R, 0))
        make_face()
    fillet3_piece_5b = extrude(amount=27.5, mode=Mode.PRIVATE)
    fillet3_piece_5b = split(fillet3_piece_5b, bisect_by=Plane(origin=(12.5, 29.205800773, 3.773604886), z_dir=(1, 0, 0)), keep=Keep.TOP, mode=Mode.PRIVATE)
    fillet3_piece_5 = fillet3_piece_5a & fillet3_piece_5b
    add(fillet3_piece_5)


solid = part.part
